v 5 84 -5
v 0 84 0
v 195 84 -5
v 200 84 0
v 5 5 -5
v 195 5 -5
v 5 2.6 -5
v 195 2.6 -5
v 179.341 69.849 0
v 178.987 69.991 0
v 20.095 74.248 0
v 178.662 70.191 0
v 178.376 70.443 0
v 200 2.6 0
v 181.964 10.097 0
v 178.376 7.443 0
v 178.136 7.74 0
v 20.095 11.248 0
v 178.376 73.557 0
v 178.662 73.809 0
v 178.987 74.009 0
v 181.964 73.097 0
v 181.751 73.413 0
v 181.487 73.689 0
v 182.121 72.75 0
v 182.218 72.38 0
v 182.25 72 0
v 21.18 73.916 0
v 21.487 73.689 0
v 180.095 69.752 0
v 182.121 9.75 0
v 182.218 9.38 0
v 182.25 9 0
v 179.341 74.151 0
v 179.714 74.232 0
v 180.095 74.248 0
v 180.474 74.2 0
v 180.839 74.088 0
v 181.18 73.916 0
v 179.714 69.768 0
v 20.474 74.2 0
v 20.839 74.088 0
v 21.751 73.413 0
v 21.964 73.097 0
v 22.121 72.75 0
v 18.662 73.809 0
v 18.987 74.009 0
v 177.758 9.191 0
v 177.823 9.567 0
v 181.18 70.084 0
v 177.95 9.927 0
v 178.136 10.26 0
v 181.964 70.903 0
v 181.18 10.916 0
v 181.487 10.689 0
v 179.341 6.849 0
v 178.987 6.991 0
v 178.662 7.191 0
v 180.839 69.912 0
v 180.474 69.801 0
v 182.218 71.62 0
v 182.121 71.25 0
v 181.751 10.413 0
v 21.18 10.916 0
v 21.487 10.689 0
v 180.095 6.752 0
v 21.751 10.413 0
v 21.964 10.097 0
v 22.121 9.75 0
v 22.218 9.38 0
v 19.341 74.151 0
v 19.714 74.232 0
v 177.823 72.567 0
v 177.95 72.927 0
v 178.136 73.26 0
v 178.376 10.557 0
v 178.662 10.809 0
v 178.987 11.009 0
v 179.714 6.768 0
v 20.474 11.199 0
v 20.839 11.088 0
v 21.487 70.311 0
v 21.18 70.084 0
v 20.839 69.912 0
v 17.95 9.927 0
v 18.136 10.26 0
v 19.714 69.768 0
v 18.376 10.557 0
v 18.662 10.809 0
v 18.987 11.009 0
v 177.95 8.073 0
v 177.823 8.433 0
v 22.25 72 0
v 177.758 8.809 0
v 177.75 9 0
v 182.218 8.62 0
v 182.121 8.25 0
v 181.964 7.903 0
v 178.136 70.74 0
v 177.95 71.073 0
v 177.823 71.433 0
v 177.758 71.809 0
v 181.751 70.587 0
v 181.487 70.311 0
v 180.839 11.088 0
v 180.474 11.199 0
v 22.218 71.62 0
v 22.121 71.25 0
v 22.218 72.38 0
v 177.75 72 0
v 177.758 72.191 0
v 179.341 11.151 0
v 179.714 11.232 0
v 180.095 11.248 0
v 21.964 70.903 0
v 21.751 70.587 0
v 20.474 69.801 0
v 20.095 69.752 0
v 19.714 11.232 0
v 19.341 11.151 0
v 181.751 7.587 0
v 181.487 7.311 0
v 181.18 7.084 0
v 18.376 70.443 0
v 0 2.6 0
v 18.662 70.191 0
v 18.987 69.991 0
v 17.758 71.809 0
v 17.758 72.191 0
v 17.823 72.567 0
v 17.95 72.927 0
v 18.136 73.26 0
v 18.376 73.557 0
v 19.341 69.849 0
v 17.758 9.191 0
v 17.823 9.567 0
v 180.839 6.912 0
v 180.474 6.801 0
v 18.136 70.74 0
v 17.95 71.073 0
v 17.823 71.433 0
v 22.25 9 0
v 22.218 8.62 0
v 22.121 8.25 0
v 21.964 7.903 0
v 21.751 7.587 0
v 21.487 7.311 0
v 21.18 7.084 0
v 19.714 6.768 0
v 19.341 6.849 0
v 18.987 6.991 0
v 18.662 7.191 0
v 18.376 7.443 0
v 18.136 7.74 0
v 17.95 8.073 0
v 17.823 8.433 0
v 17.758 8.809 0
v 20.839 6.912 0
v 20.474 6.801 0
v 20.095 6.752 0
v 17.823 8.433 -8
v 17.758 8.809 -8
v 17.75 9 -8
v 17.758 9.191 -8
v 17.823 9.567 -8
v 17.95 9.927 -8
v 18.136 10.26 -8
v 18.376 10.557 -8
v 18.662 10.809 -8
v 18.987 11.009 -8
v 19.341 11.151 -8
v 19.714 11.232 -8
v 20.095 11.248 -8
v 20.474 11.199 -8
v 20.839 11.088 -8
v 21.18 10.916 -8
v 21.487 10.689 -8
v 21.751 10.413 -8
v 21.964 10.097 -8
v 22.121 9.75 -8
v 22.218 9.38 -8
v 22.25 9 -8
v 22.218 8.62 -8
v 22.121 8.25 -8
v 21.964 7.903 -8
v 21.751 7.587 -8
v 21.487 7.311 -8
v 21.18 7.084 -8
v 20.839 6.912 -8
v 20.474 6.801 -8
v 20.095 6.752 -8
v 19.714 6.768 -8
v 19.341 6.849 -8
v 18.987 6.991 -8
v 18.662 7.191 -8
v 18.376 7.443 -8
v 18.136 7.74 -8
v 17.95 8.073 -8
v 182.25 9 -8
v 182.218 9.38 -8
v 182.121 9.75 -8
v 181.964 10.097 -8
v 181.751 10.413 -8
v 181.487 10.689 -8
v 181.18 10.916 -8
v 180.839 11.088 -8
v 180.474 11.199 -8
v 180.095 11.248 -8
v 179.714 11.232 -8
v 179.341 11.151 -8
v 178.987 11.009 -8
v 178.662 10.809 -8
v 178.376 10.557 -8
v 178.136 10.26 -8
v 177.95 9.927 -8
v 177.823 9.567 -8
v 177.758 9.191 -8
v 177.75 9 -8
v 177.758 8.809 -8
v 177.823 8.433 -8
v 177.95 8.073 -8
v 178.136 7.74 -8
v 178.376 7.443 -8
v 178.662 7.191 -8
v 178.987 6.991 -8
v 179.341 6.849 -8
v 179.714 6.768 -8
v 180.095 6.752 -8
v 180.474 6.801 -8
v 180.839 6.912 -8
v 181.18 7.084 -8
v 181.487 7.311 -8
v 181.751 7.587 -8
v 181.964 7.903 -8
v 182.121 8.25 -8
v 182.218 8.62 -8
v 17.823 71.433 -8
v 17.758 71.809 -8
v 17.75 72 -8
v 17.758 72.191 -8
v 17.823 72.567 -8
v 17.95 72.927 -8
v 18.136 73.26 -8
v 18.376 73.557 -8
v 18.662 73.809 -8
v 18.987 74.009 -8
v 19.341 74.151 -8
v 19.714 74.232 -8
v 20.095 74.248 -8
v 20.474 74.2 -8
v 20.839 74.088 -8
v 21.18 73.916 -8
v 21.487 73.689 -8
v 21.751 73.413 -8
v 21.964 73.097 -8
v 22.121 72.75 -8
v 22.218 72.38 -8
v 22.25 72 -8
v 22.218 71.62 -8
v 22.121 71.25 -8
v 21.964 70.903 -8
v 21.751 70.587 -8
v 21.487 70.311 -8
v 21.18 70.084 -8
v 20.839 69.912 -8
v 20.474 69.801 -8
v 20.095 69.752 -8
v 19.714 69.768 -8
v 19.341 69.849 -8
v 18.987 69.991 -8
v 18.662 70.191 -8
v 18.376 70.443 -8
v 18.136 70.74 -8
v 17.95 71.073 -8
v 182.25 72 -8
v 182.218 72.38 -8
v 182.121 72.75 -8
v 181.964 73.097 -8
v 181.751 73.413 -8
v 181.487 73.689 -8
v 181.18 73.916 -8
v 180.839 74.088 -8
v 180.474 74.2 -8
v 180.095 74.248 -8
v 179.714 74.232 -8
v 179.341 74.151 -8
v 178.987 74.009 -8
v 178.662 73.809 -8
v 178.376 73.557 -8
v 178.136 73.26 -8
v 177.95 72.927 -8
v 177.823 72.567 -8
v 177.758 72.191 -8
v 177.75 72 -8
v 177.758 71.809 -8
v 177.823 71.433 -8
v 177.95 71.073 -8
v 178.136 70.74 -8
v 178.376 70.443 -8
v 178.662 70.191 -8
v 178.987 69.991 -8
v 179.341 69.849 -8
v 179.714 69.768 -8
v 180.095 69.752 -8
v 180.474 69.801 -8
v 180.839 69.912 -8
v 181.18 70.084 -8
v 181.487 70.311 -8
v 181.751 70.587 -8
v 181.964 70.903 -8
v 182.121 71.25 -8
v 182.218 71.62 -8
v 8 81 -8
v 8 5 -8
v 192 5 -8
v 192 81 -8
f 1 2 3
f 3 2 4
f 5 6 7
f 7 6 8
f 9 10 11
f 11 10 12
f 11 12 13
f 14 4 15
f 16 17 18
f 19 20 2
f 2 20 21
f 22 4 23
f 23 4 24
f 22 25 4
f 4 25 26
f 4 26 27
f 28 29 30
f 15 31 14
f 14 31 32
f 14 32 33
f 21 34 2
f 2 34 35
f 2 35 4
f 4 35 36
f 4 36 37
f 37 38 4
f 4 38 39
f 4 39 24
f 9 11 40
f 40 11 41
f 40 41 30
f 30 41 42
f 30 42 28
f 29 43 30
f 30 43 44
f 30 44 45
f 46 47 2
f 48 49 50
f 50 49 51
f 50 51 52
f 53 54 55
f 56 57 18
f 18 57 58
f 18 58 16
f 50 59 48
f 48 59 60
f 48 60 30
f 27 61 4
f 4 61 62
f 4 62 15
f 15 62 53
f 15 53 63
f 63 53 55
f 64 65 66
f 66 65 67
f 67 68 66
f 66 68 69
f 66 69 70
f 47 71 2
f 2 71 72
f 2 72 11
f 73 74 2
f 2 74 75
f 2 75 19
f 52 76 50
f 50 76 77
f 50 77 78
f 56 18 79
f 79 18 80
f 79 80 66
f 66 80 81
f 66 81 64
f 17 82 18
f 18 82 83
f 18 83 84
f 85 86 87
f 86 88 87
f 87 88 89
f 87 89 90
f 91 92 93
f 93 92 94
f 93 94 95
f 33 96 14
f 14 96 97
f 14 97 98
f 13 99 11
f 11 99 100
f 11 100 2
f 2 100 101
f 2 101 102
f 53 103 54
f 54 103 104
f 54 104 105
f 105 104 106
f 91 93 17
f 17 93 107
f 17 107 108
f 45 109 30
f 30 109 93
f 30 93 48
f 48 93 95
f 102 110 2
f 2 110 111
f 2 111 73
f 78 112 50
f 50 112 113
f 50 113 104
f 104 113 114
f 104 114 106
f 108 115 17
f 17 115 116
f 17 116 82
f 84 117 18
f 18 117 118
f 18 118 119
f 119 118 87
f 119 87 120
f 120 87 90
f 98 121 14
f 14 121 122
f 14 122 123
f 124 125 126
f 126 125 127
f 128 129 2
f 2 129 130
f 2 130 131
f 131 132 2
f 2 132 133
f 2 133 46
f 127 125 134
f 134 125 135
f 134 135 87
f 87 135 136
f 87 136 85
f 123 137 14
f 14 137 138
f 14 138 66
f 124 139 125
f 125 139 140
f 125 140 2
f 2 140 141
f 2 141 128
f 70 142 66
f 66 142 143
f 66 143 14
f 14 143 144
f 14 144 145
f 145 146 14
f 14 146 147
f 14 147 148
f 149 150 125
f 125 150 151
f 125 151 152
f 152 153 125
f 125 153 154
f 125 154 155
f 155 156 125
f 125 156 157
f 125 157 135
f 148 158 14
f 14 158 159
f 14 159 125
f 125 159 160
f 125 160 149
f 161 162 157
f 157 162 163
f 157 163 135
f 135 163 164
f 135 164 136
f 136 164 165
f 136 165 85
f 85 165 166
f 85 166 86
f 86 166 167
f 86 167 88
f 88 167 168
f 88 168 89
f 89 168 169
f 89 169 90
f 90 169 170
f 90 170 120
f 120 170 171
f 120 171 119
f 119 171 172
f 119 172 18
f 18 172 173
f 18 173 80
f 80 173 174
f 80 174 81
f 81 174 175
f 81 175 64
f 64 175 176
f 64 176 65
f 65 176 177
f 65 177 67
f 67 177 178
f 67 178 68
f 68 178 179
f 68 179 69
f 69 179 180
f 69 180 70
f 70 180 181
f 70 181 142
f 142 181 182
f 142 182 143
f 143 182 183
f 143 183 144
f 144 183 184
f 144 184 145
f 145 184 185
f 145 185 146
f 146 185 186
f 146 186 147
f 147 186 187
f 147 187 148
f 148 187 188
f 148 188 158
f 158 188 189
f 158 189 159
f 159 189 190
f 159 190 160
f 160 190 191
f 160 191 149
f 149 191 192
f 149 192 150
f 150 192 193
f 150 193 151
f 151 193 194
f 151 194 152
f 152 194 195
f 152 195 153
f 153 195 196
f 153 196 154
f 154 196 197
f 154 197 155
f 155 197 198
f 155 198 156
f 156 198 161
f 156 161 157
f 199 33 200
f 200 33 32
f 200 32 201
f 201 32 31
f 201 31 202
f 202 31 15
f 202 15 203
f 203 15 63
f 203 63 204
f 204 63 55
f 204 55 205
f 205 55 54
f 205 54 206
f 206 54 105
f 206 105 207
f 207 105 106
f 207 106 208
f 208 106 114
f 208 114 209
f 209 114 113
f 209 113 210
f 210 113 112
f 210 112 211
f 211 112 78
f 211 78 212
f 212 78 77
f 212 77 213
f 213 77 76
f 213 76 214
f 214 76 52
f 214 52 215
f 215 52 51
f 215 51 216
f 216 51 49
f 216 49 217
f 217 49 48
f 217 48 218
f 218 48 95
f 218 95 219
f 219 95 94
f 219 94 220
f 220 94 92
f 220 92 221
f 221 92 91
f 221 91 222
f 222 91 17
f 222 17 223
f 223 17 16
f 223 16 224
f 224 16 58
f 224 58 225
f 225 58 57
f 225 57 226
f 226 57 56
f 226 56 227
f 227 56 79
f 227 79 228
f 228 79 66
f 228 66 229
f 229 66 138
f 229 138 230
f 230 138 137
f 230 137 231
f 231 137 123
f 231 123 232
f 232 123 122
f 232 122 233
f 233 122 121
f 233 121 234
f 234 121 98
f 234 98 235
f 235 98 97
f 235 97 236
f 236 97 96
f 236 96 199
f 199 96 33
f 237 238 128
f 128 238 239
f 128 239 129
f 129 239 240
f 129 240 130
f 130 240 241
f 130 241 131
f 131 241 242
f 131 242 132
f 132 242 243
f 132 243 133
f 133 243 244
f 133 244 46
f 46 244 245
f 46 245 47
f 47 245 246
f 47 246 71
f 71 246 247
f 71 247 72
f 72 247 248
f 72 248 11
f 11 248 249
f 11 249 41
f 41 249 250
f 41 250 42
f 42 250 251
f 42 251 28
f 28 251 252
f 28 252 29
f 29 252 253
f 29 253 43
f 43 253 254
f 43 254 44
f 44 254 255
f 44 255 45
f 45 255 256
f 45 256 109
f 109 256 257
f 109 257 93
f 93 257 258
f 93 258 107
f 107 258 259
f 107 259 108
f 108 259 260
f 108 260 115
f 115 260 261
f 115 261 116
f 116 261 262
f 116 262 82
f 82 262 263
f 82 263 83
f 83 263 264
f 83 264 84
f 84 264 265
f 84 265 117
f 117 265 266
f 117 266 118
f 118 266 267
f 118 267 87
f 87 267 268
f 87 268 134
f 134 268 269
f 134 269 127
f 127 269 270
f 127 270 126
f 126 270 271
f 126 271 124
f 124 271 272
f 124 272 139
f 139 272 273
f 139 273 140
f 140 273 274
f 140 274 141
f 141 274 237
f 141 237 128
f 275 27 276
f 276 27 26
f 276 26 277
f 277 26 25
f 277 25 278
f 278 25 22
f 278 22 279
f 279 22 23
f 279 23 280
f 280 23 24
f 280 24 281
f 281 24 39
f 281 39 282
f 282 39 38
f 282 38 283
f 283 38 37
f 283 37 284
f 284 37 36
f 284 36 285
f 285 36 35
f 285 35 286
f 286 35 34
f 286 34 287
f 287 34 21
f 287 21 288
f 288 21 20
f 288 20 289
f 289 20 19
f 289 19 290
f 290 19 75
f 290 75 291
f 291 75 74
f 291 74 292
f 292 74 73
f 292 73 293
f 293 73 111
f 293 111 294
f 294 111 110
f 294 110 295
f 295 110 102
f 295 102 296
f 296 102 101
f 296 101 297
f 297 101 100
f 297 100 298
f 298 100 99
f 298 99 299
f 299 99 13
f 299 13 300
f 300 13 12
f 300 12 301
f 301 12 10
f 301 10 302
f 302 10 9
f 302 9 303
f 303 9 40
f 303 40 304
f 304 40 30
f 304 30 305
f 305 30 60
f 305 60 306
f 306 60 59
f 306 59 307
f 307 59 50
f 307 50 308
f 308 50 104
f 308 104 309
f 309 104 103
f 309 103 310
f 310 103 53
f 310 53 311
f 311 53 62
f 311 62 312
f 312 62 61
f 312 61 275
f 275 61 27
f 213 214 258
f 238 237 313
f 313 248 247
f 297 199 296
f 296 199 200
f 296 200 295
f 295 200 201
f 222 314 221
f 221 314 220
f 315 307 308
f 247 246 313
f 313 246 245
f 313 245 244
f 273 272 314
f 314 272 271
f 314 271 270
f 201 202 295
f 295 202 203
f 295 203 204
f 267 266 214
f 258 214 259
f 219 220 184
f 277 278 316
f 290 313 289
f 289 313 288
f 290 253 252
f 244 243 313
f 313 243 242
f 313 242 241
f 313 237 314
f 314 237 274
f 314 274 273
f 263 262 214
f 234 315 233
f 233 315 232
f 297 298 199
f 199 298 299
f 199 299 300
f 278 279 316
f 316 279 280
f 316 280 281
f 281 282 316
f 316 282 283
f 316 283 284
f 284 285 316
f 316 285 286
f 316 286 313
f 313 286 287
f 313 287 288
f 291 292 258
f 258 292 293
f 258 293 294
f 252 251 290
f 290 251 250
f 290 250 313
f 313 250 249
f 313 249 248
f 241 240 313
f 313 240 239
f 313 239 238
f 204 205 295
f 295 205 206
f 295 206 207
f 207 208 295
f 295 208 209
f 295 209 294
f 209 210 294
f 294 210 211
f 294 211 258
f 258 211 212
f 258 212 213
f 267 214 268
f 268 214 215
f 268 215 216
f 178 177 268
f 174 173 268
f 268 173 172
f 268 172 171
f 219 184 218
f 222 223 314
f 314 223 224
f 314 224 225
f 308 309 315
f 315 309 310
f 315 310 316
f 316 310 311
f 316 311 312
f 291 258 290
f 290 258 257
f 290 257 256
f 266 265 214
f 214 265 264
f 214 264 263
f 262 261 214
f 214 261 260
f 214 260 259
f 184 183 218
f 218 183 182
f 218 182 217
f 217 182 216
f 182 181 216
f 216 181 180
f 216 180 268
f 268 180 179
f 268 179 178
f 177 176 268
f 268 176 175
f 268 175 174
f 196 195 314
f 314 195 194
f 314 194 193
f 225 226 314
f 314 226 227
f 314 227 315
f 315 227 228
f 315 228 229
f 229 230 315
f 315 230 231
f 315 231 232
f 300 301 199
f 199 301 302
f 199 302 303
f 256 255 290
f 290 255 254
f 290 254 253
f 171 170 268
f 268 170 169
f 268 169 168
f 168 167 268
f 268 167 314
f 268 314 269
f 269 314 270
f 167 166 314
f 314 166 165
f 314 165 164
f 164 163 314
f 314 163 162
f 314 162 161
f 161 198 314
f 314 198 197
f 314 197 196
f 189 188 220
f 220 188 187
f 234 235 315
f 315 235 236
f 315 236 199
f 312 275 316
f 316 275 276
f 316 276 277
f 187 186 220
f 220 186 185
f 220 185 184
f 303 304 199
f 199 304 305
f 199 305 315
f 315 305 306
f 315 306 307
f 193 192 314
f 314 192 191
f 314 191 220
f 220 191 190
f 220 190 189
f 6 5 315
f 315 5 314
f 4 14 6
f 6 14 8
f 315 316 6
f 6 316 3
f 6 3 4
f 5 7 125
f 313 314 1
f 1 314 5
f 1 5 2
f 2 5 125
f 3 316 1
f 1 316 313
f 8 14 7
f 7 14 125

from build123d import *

# Parameters (mm, degrees)
SKETCH1_W           = 200
SKETCH1_H           = 84
SKETCH1_R           = 2.25
BOSS_EXTRUDE1_DEPTH = 5
SKETCH2_W           = 200
SKETCH2_H           = 79
SKETCH2_R           = 2.25
BOSS_EXTRUDE2_DEPTH = 3
CHAMFER1_SIZE       = 8
CHAMFER3_SIZE       = 3
SKETCH3_W           = 7.071067812
SKETCH3_H           = 2.6
CUT_EXTRUDE1_DEPTH  = 234.034075139


with BuildPart() as part:
    # Sketch1 → Boss-Extrude1 (new body)
    with BuildSketch(Plane.XY):
        with Locations((100, 42)):
            Rectangle(SKETCH1_W, SKETCH1_H)
        with Locations((20, 9)):
            Circle(SKETCH1_R, mode=Mode.SUBTRACT)
        with Locations(Location((180, 9, 0), (0, 0, 180))):
            Circle(SKETCH1_R, mode=Mode.SUBTRACT)
        with Locations((20, 72)):
            Circle(SKETCH1_R, mode=Mode.SUBTRACT)
        with Locations(Location((180, 72, 0), (0, 0, 180))):
            Circle(SKETCH1_R, mode=Mode.SUBTRACT)
    extrude(amount=-BOSS_EXTRUDE1_DEPTH)

    # Sketch2 → Boss-Extrude2 (add)
    with BuildSketch(Plane(origin=(0, 0, -5), x_dir=(-1, 0, 0), z_dir=(0, 0, -1))):
        with Locations((-100, 44.5)):
            Rectangle(SKETCH2_W, SKETCH2_H)
        with Locations(Location((-20, 9, 0), (0, 0, 180))):
            Circle(SKETCH2_R, mode=Mode.SUBTRACT)
        with Locations((-180, 9)):
            Circle(SKETCH2_R, mode=Mode.SUBTRACT)
        with Locations(Location((-20, 72, 0), (0, 0, 180))):
            Circle(SKETCH2_R, mode=Mode.SUBTRACT)
        with Locations((-180, 72)):
            Circle(SKETCH2_R, mode=Mode.SUBTRACT)
    extrude(amount=BOSS_EXTRUDE2_DEPTH)

    # Chamfer1
    # the kernel refuses this chamfer: 8 mm, written as the material it takes off along each edge
    with BuildSketch(Plane(origin=(200, -15.573463904, -8), x_dir=(-0.9996219169112968, 0, -0.027495876610586296), z_dir=(0, 1, 0)), Plane(origin=(0, 104.573463904, -8), x_dir=(0.9996219169112968, 0, -0.027495876610586275), z_dir=(0, -1, 0))) as chamfer1_piece_1:
        Polygon((CHAMFER1_SIZE * 0.999621916911, CHAMFER1_SIZE * 0.0274958766106), (-CHAMFER1_SIZE * 0.0274958766106, CHAMFER1_SIZE * 0.999621916911), (0, 0), align=None)
    extrude(amount=120.146927807, mode=Mode.SUBTRACT)

    # Chamfer3
    chamfer3_edges = [part.edges().sort_by_distance(p)[0] for p in [
        (100, 84, -8),
    ]]
    chamfer(chamfer3_edges, length=CHAMFER3_SIZE)

    # Sketch3 → Cut-Extrude1 (cut, through all, along a direction that is not the sketch's normal)
    with BuildSketch(Plane(origin=(100, 0, -100), x_dir=(-0.7071067811865452, 0, -0.7071067811865498), z_dir=(0.7071067811865498, 0, -0.7071067811865452))):
        with Locations((-137.885822331, 1.3)):
            Rectangle(SKETCH3_W, SKETCH3_H)
    extrude(amount=-CUT_EXTRUDE1_DEPTH, dir=(1, 0, 0), mode=Mode.SUBTRACT)


solid = part.part
